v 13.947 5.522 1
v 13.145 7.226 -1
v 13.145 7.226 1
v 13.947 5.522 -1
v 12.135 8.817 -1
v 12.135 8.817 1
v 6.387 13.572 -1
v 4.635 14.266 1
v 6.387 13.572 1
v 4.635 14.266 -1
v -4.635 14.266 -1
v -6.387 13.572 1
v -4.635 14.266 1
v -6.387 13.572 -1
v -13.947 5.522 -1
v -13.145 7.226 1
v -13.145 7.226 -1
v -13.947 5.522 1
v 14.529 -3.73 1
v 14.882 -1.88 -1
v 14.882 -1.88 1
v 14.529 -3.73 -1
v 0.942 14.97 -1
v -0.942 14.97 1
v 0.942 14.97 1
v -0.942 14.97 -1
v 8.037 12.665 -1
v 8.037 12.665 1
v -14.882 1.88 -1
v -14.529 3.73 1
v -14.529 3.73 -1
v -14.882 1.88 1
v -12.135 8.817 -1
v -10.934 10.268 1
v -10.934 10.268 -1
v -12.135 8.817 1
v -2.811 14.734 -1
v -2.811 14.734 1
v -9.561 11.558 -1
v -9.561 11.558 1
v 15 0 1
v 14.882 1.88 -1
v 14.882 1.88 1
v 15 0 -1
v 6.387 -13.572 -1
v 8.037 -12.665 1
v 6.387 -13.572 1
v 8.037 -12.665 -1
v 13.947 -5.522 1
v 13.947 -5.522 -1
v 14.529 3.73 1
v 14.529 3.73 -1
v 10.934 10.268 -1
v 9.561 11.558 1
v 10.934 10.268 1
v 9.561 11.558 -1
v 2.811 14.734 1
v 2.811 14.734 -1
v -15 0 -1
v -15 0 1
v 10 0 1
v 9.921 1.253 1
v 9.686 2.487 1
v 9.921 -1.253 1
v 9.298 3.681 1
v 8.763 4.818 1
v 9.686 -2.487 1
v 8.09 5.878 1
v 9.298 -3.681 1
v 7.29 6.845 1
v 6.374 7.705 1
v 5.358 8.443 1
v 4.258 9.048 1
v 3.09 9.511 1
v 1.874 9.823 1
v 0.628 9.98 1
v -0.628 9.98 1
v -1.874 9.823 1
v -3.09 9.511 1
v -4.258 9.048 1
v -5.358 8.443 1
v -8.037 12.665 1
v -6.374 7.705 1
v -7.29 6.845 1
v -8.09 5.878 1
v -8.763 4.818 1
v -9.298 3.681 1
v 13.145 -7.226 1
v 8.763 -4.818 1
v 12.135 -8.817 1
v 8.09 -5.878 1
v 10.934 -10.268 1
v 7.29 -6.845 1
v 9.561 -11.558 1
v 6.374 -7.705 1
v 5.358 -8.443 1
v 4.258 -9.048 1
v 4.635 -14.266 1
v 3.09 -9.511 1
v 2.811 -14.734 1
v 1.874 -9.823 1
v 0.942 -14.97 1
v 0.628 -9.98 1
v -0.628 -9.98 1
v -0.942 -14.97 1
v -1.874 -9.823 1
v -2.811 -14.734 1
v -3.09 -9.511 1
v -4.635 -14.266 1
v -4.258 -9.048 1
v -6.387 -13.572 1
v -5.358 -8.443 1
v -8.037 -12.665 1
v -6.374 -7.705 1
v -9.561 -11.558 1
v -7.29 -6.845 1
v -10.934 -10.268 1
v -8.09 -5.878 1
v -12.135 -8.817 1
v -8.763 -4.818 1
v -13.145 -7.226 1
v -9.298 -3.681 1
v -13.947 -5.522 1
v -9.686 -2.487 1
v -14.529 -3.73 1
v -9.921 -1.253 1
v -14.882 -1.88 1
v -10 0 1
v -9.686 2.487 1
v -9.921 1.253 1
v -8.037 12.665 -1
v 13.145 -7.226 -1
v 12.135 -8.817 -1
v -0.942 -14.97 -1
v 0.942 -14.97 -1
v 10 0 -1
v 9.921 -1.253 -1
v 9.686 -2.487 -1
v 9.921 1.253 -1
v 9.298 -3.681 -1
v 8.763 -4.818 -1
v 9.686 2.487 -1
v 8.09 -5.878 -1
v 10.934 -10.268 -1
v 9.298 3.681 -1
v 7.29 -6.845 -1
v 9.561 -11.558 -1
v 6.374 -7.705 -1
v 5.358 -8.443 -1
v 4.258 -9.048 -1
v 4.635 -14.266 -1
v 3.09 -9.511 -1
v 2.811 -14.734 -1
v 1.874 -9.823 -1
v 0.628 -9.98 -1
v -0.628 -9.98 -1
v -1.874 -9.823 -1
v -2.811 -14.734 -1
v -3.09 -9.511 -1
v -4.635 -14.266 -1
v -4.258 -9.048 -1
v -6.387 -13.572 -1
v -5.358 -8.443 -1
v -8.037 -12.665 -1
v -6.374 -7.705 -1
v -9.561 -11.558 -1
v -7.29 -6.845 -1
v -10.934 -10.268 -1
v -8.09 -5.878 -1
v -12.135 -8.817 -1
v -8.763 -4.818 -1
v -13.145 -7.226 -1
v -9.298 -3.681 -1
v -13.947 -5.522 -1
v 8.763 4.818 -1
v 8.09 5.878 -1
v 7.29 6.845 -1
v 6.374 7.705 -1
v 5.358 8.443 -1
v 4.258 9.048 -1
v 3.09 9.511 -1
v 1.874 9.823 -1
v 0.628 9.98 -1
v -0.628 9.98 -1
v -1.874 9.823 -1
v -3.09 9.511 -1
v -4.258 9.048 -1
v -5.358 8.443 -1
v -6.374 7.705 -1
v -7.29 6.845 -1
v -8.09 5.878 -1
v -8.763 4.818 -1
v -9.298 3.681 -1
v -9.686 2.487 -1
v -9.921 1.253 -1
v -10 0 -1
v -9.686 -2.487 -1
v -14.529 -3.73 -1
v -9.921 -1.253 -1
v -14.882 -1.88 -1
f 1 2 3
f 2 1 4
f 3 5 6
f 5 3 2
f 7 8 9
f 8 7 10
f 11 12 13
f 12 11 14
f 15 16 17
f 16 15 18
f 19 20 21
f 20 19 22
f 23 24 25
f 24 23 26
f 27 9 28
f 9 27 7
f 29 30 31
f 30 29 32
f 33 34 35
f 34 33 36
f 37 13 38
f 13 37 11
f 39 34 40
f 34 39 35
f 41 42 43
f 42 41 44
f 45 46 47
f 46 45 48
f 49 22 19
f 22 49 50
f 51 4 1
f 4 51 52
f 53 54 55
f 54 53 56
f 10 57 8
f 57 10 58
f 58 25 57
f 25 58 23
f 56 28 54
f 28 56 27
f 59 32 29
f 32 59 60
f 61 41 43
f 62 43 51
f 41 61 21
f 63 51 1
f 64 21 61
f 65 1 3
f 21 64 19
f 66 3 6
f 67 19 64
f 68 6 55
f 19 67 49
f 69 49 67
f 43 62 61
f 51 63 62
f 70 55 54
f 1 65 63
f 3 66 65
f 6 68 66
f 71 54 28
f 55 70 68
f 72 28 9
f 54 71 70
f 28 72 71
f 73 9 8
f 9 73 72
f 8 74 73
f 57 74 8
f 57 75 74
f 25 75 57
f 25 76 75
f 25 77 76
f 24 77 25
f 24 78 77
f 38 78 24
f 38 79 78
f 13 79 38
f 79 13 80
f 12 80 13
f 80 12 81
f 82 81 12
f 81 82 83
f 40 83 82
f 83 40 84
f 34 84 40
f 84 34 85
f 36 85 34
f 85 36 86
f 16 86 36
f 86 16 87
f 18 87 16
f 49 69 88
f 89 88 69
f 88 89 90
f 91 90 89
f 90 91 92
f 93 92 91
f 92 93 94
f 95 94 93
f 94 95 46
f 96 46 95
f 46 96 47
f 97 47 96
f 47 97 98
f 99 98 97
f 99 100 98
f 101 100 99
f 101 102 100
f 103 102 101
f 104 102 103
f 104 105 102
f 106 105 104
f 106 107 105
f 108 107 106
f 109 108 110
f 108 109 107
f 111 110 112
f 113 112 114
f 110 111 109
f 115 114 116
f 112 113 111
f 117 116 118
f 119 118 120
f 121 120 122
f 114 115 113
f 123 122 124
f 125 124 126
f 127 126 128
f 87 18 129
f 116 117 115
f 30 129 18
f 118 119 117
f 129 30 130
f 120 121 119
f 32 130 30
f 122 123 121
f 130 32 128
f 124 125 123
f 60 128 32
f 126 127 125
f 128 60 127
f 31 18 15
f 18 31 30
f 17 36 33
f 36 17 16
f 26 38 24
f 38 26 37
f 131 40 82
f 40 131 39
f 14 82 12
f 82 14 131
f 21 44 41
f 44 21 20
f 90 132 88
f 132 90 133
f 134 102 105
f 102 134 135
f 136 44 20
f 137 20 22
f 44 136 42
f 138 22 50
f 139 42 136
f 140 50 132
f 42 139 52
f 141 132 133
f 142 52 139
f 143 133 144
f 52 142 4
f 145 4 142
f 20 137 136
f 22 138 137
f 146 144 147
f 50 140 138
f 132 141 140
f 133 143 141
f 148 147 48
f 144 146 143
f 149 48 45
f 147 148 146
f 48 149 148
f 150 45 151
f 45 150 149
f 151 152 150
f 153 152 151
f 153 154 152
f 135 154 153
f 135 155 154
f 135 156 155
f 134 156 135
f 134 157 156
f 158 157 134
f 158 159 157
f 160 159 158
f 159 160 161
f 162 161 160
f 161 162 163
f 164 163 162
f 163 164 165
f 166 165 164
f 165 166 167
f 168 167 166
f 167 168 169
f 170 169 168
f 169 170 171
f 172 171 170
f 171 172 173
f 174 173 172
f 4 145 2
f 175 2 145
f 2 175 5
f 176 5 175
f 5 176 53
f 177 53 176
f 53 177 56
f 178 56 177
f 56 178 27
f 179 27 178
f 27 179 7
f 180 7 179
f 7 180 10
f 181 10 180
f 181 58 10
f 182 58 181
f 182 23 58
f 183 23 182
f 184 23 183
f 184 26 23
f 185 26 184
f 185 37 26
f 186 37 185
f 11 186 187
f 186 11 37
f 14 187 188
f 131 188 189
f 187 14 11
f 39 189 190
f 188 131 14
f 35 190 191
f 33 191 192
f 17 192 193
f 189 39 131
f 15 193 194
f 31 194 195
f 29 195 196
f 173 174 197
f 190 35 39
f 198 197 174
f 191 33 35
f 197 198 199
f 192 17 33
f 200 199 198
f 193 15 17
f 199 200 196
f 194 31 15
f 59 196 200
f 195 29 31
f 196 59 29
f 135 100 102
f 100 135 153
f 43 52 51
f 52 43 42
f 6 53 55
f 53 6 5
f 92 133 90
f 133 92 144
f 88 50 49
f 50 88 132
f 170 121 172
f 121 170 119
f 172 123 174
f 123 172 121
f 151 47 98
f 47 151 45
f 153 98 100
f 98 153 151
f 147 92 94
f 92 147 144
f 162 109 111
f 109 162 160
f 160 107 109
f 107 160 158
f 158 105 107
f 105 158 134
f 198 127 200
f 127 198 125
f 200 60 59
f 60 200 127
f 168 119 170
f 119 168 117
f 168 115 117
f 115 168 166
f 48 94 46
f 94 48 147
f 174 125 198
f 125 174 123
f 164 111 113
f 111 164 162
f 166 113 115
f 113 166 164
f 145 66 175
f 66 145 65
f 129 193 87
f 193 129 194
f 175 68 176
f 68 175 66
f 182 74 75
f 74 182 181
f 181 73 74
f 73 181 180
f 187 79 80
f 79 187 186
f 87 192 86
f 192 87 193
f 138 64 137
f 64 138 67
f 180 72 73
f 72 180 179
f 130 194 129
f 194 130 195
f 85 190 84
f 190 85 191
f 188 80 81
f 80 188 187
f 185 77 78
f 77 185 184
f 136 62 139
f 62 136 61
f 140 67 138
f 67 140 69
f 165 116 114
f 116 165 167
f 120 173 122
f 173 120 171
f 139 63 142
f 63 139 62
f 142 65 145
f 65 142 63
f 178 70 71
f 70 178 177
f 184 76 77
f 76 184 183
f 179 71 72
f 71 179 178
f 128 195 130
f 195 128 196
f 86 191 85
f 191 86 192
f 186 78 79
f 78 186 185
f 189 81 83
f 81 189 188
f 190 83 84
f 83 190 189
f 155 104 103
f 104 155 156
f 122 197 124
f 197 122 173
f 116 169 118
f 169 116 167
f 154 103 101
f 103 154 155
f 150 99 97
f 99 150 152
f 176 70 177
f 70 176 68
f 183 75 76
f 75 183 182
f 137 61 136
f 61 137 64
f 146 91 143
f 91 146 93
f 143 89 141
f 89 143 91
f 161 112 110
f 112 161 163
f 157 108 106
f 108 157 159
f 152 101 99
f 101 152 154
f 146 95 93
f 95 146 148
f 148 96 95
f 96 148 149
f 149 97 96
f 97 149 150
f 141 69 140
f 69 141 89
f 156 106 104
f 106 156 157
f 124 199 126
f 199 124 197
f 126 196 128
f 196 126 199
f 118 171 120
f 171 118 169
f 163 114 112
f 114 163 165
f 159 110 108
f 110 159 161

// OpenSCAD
$fn = 50;


difference() {
	union() {
		translate(v = [0, 0, -1.0000000000]) {
			cylinder(h = 2, r = 15.0000000000);
		}
	}
	union() {
		translate(v = [0, 0, -100.0000000000]) {
			cylinder(h = 200, r = 10);
		}
	}
}
